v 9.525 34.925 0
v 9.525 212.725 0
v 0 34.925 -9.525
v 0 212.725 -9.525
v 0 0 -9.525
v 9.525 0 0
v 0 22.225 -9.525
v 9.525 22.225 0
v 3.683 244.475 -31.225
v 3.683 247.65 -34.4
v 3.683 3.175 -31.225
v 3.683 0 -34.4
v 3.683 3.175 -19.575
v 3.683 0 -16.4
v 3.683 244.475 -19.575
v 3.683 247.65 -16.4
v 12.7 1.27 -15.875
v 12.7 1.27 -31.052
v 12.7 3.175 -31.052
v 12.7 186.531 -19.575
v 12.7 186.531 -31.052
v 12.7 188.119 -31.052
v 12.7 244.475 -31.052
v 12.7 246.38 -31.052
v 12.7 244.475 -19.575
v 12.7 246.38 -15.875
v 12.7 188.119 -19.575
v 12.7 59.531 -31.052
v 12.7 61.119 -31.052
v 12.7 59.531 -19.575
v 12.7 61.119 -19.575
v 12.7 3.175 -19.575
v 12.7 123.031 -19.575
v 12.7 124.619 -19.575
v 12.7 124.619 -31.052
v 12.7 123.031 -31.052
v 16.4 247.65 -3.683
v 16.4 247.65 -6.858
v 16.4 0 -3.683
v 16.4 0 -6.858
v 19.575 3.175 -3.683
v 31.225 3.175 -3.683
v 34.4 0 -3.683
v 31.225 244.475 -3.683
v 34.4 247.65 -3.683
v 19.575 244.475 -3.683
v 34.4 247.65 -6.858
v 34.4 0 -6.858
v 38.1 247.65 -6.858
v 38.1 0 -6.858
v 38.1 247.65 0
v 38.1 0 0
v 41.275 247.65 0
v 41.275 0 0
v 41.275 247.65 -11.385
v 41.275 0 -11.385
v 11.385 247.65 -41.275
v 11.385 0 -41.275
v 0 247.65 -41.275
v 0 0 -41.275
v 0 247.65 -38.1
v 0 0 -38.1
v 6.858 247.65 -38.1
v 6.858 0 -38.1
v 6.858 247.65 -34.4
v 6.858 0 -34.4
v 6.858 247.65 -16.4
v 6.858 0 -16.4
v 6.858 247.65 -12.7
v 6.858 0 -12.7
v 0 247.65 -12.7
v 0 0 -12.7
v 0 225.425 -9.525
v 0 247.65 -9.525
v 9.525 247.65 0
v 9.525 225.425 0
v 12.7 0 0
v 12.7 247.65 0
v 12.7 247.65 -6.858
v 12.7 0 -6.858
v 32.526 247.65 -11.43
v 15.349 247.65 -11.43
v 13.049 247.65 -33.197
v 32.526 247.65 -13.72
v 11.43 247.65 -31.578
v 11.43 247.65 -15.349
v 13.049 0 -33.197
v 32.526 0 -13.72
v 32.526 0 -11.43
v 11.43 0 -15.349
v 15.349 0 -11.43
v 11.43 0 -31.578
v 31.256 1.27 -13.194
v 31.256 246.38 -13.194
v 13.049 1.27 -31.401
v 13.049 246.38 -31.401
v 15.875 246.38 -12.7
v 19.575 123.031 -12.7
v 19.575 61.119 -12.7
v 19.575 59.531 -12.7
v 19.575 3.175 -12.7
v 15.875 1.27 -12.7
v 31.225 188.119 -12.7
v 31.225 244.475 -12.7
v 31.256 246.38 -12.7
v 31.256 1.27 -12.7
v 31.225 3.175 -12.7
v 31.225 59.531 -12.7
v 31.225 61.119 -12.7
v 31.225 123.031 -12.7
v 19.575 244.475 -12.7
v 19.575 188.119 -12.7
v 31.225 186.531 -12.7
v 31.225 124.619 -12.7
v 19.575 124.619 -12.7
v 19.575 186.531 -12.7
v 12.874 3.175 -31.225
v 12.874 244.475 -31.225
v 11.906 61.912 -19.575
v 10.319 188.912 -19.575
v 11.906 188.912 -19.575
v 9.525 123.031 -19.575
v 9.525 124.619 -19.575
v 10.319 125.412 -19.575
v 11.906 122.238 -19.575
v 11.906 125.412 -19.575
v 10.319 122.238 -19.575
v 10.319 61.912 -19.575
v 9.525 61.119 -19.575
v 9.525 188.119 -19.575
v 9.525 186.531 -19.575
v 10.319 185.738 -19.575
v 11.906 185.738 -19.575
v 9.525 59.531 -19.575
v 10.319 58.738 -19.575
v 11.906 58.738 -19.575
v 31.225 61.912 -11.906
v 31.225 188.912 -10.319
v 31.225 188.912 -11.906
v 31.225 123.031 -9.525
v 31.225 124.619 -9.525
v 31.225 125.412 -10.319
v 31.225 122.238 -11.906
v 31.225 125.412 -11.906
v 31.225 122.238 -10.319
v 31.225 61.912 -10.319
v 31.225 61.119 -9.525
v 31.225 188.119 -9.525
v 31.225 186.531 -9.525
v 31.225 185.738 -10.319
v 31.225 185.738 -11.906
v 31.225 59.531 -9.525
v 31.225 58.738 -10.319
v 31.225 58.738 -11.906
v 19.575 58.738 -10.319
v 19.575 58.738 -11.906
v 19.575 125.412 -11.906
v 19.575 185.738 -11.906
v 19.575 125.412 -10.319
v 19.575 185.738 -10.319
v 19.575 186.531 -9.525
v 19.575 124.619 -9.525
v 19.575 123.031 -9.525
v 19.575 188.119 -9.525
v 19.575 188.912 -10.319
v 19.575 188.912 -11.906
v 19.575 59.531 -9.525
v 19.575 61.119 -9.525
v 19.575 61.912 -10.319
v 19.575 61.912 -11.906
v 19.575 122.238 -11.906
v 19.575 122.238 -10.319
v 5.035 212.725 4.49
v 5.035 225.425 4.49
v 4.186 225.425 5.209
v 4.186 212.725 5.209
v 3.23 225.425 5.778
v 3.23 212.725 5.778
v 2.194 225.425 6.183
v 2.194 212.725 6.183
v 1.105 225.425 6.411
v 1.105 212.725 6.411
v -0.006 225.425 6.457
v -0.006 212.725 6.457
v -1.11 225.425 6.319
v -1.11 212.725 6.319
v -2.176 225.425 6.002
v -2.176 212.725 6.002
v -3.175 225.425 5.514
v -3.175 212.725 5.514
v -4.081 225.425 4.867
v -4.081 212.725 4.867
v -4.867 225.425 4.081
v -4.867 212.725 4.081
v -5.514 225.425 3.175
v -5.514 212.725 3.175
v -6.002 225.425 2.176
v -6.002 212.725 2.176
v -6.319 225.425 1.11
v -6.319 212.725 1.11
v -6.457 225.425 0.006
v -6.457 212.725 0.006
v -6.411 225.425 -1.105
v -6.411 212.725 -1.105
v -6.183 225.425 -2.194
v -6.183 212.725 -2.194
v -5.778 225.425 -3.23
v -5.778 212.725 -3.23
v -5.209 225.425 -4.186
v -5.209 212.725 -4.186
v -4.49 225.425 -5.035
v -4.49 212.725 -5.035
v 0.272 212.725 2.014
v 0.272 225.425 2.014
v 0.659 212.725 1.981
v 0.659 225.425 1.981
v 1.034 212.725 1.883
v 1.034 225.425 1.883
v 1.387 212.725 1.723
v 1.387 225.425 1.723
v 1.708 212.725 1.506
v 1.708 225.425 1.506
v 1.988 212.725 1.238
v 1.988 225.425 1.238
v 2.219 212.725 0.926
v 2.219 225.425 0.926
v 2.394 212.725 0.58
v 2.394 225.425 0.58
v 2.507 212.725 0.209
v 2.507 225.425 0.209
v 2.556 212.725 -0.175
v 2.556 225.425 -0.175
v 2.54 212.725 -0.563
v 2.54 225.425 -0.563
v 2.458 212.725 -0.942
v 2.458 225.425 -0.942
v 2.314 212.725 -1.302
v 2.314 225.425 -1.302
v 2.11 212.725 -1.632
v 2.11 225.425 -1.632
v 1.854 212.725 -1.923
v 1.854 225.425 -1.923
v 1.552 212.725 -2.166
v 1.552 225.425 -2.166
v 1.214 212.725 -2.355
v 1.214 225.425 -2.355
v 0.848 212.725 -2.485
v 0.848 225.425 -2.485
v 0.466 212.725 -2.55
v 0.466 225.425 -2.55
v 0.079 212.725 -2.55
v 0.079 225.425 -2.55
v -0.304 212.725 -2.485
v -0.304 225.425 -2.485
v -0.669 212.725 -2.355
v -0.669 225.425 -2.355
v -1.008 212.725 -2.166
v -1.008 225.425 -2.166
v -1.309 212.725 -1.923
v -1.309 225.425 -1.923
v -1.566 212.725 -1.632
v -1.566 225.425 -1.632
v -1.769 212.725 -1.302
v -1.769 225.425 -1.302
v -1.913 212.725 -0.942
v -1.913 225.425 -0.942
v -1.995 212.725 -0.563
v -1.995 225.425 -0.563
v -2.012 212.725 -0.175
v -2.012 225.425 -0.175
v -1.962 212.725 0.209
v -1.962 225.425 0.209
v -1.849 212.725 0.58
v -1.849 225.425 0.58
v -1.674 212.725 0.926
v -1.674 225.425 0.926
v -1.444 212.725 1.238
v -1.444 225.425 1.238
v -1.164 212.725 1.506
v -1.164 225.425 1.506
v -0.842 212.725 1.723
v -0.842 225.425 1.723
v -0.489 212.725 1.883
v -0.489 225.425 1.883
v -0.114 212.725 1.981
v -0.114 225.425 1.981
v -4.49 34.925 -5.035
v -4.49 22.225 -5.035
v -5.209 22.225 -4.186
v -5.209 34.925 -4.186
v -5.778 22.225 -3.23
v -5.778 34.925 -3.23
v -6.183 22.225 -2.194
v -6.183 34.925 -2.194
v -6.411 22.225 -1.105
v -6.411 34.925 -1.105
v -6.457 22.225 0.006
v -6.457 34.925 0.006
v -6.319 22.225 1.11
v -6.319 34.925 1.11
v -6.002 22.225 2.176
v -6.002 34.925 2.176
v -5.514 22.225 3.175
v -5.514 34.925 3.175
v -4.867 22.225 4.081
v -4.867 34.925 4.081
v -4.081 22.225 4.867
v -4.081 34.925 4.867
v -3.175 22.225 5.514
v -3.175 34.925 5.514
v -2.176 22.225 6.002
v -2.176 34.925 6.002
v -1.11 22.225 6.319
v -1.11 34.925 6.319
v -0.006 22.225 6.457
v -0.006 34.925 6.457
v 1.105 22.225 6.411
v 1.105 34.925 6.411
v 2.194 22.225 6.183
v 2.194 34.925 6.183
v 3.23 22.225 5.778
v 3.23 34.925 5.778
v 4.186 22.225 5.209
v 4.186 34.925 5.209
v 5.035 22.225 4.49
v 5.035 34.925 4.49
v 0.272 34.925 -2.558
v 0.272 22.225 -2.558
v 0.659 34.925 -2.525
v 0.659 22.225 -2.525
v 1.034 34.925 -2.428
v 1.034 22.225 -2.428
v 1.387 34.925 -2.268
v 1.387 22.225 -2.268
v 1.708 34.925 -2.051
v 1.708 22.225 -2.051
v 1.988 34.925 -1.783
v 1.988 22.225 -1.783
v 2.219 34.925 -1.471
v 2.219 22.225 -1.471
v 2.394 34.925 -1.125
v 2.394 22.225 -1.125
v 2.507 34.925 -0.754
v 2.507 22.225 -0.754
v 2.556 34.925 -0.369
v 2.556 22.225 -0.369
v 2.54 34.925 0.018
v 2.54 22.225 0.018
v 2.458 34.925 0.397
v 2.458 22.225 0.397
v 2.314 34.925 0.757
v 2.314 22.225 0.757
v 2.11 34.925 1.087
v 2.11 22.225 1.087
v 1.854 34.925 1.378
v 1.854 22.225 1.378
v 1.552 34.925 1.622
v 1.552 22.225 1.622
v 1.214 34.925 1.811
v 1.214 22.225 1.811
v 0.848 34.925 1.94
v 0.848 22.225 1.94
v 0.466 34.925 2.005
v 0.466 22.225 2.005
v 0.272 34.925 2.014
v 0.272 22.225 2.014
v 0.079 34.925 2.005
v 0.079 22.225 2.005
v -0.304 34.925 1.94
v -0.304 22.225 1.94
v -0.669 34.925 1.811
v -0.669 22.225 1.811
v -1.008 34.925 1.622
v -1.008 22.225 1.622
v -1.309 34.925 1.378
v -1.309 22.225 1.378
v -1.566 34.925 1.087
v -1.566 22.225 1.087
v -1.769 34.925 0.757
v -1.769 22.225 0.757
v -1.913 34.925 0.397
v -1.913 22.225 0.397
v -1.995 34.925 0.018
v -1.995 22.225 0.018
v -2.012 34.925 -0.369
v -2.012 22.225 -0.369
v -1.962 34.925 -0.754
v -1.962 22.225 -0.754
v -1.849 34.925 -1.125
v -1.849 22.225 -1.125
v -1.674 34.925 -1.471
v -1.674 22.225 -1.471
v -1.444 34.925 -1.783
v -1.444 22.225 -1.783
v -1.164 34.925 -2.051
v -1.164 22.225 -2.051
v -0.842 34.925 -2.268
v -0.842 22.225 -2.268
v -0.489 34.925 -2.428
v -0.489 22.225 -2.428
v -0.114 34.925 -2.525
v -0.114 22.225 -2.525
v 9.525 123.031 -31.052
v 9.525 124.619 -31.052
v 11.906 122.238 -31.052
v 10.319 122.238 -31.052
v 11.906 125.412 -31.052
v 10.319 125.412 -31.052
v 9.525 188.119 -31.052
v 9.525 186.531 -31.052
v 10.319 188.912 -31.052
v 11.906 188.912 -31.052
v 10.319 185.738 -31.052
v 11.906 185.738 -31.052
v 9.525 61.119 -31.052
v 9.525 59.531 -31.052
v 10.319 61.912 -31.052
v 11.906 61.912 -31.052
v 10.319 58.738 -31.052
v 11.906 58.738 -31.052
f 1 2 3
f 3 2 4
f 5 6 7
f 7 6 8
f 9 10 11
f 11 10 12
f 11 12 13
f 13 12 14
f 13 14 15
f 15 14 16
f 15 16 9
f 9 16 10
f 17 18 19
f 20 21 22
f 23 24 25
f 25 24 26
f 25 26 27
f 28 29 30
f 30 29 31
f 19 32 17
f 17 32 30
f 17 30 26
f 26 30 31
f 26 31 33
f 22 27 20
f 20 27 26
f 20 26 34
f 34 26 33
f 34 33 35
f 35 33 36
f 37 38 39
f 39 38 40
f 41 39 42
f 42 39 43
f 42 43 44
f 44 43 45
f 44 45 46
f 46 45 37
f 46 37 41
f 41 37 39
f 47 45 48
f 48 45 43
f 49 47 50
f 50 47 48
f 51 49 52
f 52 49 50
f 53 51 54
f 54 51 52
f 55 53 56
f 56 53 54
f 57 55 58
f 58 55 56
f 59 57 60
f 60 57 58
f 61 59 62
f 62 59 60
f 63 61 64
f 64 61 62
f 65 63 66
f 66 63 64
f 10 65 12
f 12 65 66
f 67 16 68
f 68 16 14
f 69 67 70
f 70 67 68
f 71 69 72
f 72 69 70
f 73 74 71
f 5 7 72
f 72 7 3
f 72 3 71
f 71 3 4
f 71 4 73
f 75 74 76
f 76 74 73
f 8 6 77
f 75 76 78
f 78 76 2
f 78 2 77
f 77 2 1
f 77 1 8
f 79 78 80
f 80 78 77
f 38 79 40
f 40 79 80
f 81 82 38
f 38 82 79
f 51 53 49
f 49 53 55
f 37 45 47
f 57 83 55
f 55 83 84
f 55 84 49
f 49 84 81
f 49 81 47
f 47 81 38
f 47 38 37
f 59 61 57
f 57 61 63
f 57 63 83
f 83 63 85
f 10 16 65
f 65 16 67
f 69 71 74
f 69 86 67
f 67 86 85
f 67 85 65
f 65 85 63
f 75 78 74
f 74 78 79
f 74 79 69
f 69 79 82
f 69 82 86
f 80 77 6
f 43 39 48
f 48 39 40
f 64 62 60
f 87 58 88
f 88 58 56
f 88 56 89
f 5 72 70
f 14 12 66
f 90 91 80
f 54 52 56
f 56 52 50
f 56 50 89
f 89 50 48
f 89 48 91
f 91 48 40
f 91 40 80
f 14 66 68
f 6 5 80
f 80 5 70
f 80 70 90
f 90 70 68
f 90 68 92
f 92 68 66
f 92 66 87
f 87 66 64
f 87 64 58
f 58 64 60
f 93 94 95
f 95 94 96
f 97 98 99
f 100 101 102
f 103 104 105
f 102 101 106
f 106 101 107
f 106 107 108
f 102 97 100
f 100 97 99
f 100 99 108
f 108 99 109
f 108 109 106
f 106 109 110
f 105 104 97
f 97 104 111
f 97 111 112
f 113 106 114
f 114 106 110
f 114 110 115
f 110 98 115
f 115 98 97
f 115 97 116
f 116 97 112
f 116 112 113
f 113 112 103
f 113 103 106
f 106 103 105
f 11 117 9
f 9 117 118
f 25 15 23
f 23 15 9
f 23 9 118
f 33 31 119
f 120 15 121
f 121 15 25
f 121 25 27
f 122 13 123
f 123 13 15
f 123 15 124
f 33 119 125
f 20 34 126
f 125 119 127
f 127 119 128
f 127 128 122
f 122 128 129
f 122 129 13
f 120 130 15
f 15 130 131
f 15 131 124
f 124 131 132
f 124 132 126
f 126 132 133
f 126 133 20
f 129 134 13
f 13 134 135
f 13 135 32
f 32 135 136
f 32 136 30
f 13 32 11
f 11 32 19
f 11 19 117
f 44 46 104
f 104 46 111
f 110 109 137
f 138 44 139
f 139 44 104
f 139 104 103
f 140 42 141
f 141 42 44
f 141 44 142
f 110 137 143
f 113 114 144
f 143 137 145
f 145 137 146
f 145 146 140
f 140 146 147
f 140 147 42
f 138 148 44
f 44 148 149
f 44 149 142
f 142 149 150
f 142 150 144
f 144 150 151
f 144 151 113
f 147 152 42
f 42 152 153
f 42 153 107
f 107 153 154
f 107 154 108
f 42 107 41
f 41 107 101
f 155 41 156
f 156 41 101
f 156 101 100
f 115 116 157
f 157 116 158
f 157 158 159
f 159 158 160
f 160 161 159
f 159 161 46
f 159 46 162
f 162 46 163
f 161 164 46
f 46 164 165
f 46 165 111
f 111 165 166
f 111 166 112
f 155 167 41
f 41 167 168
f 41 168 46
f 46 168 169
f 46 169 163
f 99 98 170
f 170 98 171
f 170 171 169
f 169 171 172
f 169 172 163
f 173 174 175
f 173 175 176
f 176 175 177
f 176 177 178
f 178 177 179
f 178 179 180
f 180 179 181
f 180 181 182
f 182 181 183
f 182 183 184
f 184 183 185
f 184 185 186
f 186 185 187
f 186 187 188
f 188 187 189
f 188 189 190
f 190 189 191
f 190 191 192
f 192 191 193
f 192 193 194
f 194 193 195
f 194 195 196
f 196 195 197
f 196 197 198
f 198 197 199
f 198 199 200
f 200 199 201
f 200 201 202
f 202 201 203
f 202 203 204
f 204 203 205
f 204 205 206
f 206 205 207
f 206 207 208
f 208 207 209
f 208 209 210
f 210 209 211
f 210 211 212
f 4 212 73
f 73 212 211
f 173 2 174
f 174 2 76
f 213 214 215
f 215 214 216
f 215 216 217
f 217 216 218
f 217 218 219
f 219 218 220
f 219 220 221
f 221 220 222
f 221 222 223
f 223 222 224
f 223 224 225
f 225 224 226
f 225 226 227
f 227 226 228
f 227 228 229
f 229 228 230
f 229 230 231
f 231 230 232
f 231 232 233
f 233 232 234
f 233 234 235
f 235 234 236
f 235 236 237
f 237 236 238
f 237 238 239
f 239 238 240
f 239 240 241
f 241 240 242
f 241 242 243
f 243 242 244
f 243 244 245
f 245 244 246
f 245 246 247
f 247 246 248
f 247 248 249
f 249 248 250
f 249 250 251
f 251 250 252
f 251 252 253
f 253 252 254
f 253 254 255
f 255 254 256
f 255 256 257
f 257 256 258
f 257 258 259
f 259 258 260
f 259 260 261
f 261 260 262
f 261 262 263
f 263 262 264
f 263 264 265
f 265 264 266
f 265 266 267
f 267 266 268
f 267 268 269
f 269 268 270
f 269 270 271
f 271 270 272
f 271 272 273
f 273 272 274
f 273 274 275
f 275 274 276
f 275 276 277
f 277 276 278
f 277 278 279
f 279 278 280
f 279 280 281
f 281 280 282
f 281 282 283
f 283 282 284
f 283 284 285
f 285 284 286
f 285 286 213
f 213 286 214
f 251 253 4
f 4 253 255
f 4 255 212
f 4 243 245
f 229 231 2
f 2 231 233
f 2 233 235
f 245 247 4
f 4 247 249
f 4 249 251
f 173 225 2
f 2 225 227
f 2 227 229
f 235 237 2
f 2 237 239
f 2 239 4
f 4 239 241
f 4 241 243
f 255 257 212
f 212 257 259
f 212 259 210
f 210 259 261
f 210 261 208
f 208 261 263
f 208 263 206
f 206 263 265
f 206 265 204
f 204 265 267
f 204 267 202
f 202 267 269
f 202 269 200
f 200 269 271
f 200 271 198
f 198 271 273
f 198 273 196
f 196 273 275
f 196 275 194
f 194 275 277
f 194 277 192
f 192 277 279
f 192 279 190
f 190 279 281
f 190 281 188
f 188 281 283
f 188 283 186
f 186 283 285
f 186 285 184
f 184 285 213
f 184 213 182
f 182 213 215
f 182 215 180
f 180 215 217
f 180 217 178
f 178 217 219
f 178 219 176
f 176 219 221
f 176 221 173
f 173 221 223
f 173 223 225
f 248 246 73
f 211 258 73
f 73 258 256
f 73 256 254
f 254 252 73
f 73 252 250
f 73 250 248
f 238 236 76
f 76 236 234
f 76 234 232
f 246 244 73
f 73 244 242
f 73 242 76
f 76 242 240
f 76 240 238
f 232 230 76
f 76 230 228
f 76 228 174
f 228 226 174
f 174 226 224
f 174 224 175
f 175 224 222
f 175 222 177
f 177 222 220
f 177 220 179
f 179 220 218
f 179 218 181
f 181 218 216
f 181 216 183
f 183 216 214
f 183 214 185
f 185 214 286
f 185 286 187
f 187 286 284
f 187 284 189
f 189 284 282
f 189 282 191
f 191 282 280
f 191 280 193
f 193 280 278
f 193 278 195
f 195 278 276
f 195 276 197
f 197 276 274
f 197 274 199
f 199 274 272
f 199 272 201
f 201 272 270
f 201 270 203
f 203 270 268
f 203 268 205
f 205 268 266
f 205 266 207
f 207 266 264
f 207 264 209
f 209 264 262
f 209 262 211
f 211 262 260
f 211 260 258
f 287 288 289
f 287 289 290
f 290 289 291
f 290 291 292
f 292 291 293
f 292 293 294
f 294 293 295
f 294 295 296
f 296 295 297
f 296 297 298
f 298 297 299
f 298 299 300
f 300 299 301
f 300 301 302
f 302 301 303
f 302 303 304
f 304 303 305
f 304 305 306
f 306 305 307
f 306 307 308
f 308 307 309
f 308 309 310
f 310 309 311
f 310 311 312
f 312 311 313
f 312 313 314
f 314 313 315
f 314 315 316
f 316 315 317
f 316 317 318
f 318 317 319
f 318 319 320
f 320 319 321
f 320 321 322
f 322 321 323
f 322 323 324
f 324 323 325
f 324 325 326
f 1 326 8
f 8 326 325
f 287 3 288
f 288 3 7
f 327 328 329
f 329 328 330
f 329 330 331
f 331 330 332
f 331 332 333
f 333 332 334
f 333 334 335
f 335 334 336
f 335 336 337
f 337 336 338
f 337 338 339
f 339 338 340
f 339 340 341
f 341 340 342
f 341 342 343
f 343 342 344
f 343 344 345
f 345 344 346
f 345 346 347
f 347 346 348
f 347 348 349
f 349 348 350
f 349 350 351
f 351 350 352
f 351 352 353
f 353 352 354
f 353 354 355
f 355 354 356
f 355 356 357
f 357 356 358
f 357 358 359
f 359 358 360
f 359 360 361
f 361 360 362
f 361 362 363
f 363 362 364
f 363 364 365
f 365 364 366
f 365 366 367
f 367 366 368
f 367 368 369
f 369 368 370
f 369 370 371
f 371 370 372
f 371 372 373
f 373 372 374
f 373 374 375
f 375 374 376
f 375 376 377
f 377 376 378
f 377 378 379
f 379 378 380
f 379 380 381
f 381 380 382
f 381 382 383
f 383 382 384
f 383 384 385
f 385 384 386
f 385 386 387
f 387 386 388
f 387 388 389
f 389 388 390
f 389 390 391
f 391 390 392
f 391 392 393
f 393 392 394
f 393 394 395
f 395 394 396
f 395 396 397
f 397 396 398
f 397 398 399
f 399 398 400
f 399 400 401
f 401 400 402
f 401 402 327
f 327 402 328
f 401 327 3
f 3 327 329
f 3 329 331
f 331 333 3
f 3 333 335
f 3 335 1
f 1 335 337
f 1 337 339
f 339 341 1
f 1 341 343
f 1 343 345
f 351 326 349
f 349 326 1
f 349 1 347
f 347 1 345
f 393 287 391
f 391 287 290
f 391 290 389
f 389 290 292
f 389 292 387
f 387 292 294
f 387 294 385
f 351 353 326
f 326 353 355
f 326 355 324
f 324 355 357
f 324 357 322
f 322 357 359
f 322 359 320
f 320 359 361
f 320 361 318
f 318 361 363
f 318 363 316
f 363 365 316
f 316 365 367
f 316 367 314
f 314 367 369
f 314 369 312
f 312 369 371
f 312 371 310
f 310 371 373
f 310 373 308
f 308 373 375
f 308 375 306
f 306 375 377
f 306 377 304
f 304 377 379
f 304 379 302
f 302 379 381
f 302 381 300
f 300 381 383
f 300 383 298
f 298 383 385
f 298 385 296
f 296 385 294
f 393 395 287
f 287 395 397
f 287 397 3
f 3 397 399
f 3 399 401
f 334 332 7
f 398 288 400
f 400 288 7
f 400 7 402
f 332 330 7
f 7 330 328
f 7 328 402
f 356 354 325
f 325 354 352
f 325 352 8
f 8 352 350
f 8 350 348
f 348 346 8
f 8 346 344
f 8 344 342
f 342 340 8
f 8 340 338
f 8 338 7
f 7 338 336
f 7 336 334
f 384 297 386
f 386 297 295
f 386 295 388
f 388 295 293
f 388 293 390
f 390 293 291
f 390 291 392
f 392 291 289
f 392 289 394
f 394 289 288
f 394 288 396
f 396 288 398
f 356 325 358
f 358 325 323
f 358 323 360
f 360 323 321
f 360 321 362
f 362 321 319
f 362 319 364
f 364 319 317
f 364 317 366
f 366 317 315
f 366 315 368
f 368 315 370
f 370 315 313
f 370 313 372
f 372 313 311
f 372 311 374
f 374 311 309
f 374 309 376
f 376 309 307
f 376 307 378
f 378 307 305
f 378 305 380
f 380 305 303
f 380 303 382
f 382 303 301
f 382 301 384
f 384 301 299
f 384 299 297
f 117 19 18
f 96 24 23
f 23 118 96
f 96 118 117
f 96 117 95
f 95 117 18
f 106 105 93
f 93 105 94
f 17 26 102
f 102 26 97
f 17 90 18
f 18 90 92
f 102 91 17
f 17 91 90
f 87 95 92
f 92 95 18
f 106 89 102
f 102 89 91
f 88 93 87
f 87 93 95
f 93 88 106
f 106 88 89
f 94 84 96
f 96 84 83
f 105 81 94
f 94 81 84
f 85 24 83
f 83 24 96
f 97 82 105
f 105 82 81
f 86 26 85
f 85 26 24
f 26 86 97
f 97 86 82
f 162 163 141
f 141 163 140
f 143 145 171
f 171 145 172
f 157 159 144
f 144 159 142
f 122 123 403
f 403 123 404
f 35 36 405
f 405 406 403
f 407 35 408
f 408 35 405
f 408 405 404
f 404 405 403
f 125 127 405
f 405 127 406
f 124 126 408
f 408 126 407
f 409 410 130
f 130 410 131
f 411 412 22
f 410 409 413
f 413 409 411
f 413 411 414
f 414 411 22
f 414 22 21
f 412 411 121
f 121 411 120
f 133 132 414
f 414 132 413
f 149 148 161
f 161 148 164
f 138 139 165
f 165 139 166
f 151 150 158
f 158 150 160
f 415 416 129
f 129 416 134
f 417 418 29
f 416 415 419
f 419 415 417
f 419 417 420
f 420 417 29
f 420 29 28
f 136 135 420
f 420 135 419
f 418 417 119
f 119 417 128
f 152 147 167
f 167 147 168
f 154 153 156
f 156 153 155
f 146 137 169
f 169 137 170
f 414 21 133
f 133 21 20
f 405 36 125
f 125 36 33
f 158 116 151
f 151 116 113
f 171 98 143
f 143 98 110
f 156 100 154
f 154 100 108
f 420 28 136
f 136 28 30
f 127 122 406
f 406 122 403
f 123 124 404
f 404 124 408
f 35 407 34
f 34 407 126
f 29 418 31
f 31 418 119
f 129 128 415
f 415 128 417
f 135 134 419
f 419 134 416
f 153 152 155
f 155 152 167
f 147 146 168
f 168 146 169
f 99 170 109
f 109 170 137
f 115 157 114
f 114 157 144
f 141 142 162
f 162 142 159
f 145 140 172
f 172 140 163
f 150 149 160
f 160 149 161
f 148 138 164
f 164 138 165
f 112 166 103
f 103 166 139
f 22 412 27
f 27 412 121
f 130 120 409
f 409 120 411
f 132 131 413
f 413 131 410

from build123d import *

# Parameters (mm, degrees)
BOSS_EXTRUDE4_DEPTH      = 247.65
CUT_EXTRUDE9_DEPTH       = 247.65
SKETCH11_W               = 11.65
SKETCH11_H               = 241.3
CUT_EXTRUDE7_DEPTH       = 9.017
SKETCH12_W               = 11.65
SKETCH12_H               = 241.3
CUT_EXTRUDE8_DEPTH       = 9.017
SKETCH16_R               = 2.286
BOSS_EXTRUDE5_DEPTH      = 12.7
CHAMFER1_SIZE            = 0.493914087
CHAMFER1_SIZE_2          = 0.6985
CHAMFER2_SIZE            = 3.175
CHAMFER3_SIZE            = 1.27
BOSS_EXTRUDE6_DEPTH      = 1.5875
BOSS_EXTRUDE6_DEPTH_BACK = 1.5875
SKETCH19_W               = 11.65
SKETCH19_H               = 3.175
SKETCH19_W_2             = 3.175
SKETCH19_H_2             = 11.4765
SKETCH20_W               = 3.175
SKETCH20_H               = 11.4765
SKETCH20_W_2             = 11.65
SKETCH20_H_2             = 3.175
BOSS_EXTRUDE7_DEPTH      = 3.175
CHAMFER4_SIZE            = 0.79375


with BuildPart() as part:
    # Sketch1 → Boss-Extrude4 (new body)
    with BuildSketch(Plane(origin=(0, 0, 0), x_dir=(1, 0, 0), z_dir=(0, 1, 0))):
        Polygon((41.275, 0), (41.275, 11.384871939), (11.384871939, 41.275), (0, 41.275), (0, 38.1), (6.858, 38.1), (6.858, 34.4), (3.683, 34.4), (3.683, 16.4), (6.858, 16.4), (6.858, 12.7), (0, 12.7), (0, 9.525), (9.525, 0), (12.7, 0), (12.7, 6.858), (16.4, 6.858), (16.4, 3.683), (34.4, 3.683), (34.4, 6.858), (38.1, 6.858), (38.1, 0), align=None)
    extrude(amount=BOSS_EXTRUDE4_DEPTH)

    # Sketch13 → Cut-Extrude9 (cut)
    with BuildSketch(Plane.XZ):
        Polygon((12.7, -12.7), (12.7, -31.75), (31.75, -12.7), align=None)
    extrude(amount=-CUT_EXTRUDE9_DEPTH, mode=Mode.SUBTRACT)

    # Sketch11 → Cut-Extrude7 (cut)
    with BuildSketch(Plane.ZY.offset(-3.683)):
        with Locations((-25.4, 123.825)):
            Rectangle(SKETCH11_W, SKETCH11_H)
    extrude(amount=-CUT_EXTRUDE7_DEPTH, mode=Mode.SUBTRACT)

    # Sketch12 → Cut-Extrude8 (cut)
    with BuildSketch(Plane.XY.offset(-3.683)):
        with Locations((25.4, 123.825)):
            Rectangle(SKETCH12_W, SKETCH12_H)
    extrude(amount=-CUT_EXTRUDE8_DEPTH, mode=Mode.SUBTRACT)

    # Sketch16 → Boss-Extrude5 (add)
    with BuildSketch(Plane(origin=(0, 225.425, 0), x_dir=(1, 0, 0), z_dir=(0, 1, 0))):
        with BuildLine():
            Line((5.034871939, -4.490128061), (9.525, 0))
            Line((9.525, 0), (0, 9.525))
            Line((0, 9.525), (-4.490128061, 5.034871939))
            ThreePointArc((-4.490128061, 5.034871939), (-4.490128061, -4.490128061), (5.034871939, -4.490128061))
        make_face()
        with Locations(Location((0.272371939, 0.272371939, 0), (0, 0, 270))):
            Circle(SKETCH16_R, mode=Mode.SUBTRACT)
    boss_extrude5 = extrude(amount=-BOSS_EXTRUDE5_DEPTH)

    # Mirror1: Boss-Extrude5 across plane
    add(boss_extrude5.mirror(Plane.ZX.offset(123.825)))

    # Chamfer1
    # the kernel refuses this chamfer: 0.6985, 0.493914087 mm, written as the material it adds along each edge
    with BuildSketch(Plane(origin=(31.75, 0, -12.7), x_dir=(-0.9984038297885895, 0, 0.056478249472492296), z_dir=(0, 1, 0))) as chamfer1_piece_1:
        Polygon((CHAMFER1_SIZE * 0.998403829099, -CHAMFER1_SIZE * 0.0564782494335), (CHAMFER1_SIZE_2 * 0.666041965215, -CHAMFER1_SIZE_2 * 0.745914271598), (0, 0), align=None)
    extrude(amount=247.65)
    with BuildSketch(Plane(origin=(12.7, 0, -31.75), x_dir=(0.745914271597676, 0, 0.6660419652145867), z_dir=(0, 1, 0))) as chamfer1_piece_2_section:
        Polygon((CHAMFER1_SIZE * 0.998403829099, -CHAMFER1_SIZE * 0.0564782494335), (CHAMFER1_SIZE_2 * 0.666041965215, -CHAMFER1_SIZE_2 * 0.745914271598), (0, 0), align=None)
    chamfer1_piece_2 = extrude(amount=247.65, mode=Mode.PRIVATE)
    chamfer1_piece_2 = split(chamfer1_piece_2, bisect_by=Plane(origin=(12.824663098, 1.5875, -31.225), z_dir=(0, 0, -1)), keep=Keep.TOP, mode=Mode.PRIVATE)
    add(chamfer1_piece_2)
    with BuildSketch(Plane(origin=(12.7, 0, -31.75), x_dir=(0.745914271597676, 0, 0.6660419652145867), z_dir=(0, 1, 0))) as chamfer1_piece_3_section:
        Polygon((CHAMFER1_SIZE * 0.998403829099, -CHAMFER1_SIZE * 0.0564782494335), (CHAMFER1_SIZE_2 * 0.666041965215, -CHAMFER1_SIZE_2 * 0.745914271598), (0, 0), align=None)
    chamfer1_piece_3 = extrude(amount=249.446320567, mode=Mode.PRIVATE)
    chamfer1_piece_3 = split(chamfer1_piece_3, bisect_by=Plane(origin=(12.757833333, 3.175, -31.167166667), z_dir=(0, -1, 0)), keep=Keep.TOP, mode=Mode.PRIVATE)
    add(chamfer1_piece_3)
    with BuildSketch(Plane(origin=(12.7, -1.796320567, -31.75), x_dir=(0.745914271597676, 0, 0.6660419652145867), z_dir=(0, 1, 0))) as chamfer1_piece_4_section:
        Polygon((CHAMFER1_SIZE * 0.998403829099, -CHAMFER1_SIZE * 0.0564782494335), (CHAMFER1_SIZE_2 * 0.666041965215, -CHAMFER1_SIZE_2 * 0.745914271598), (0, 0), align=None)
    chamfer1_piece_4 = extrude(amount=249.446320567, mode=Mode.PRIVATE)
    chamfer1_piece_4 = split(chamfer1_piece_4, bisect_by=Plane(origin=(12.757833333, 244.475, -31.167166667), z_dir=(0, 1, 0)), keep=Keep.TOP, mode=Mode.PRIVATE)
    add(chamfer1_piece_4)

    # Chamfer2
    chamfer2_edges = [part.edges().sort_by_distance(p)[0] for p in [
        (12.7, 123.825, -12.7),
    ]]
    chamfer(chamfer2_edges, length=CHAMFER2_SIZE)

    # Chamfer3
    chamfer3_edges = [part.edges().sort_by_distance(p)[0] for p in [
        (22.152667957, 0, -22.297332043),
        (22.152667957, 247.65, -22.297332043),
        (23.565542957, 0, -12.7),
        (23.565542957, 247.65, -12.7),
        (12.874625, 0, -31.226125),
        (12.874625, 247.65, -31.226125),
        (31.256085913, 0, -12.946957043),
        (31.256085913, 247.65, -12.946957043),
        (12.7, 0, -23.46325),
        (12.7, 247.65, -23.46325),
        (14.2875, 0, -14.2875),
        (14.2875, 247.65, -14.2875),
    ]]
    chamfer(chamfer3_edges, length=CHAMFER3_SIZE)

    # Sketch19 → Boss-Extrude6 (add, two sides: drawn at the far end of the back side and taken through both)
    with BuildSketch(Plane(origin=(0, 123.825, 0), x_dir=(1, 0, 0), z_dir=(0, 1, 0)).offset(-BOSS_EXTRUDE6_DEPTH_BACK)):
        with Locations((25.4, 11.1125)):
            Rectangle(SKETCH19_W, SKETCH19_H)
        with Locations((11.1125, 25.31325)):
            Rectangle(SKETCH19_W_2, SKETCH19_H_2)
    extrude(amount=BOSS_EXTRUDE6_DEPTH + BOSS_EXTRUDE6_DEPTH_BACK)

    # Sketch20 → Boss-Extrude7 (add)
    with BuildSketch(Plane(origin=(0, 185.7375, 0), x_dir=(1, 0, 0), z_dir=(0, 1, 0))):
        with Locations((11.1125, 25.31325)):
            Rectangle(SKETCH20_W, SKETCH20_H)
        with Locations((25.4, 11.1125)):
            Rectangle(SKETCH20_W_2, SKETCH20_H_2)
    boss_extrude7 = extrude(amount=BOSS_EXTRUDE7_DEPTH)

    # Mirror2: Boss-Extrude7 across plane
    add(boss_extrude7.mirror(Plane.ZX.offset(123.825)))

    # Chamfer4
    chamfer4_edges = [part.edges().sort_by_distance(p)[0] for p in [
        (25.4, 122.2375, -12.7),
        (25.4, 122.2375, -9.525),
        (25.4, 125.4125, -9.525),
        (25.4, 125.4125, -12.7),
        (9.525, 122.2375, -25.31325),
        (12.7, 122.2375, -25.31325),
        (12.7, 125.4125, -25.31325),
        (9.525, 125.4125, -25.31325),
        (9.525, 185.7375, -25.31325),
        (12.7, 185.7375, -25.31325),
        (9.525, 188.9125, -25.31325),
        (12.7, 188.9125, -25.31325),
        (25.4, 185.7375, -12.7),
        (25.4, 185.7375, -9.525),
        (25.4, 188.9125, -12.7),
        (25.4, 188.9125, -9.525),
        (9.525, 58.7375, -25.31325),
        (12.7, 58.7375, -25.31325),
        (9.525, 61.9125, -25.31325),
        (12.7, 61.9125, -25.31325),
        (25.4, 58.7375, -12.7),
        (25.4, 58.7375, -9.525),
        (25.4, 61.9125, -12.7),
        (25.4, 61.9125, -9.525),
    ]]
    chamfer(chamfer4_edges, length=CHAMFER4_SIZE)


solid = part.part
